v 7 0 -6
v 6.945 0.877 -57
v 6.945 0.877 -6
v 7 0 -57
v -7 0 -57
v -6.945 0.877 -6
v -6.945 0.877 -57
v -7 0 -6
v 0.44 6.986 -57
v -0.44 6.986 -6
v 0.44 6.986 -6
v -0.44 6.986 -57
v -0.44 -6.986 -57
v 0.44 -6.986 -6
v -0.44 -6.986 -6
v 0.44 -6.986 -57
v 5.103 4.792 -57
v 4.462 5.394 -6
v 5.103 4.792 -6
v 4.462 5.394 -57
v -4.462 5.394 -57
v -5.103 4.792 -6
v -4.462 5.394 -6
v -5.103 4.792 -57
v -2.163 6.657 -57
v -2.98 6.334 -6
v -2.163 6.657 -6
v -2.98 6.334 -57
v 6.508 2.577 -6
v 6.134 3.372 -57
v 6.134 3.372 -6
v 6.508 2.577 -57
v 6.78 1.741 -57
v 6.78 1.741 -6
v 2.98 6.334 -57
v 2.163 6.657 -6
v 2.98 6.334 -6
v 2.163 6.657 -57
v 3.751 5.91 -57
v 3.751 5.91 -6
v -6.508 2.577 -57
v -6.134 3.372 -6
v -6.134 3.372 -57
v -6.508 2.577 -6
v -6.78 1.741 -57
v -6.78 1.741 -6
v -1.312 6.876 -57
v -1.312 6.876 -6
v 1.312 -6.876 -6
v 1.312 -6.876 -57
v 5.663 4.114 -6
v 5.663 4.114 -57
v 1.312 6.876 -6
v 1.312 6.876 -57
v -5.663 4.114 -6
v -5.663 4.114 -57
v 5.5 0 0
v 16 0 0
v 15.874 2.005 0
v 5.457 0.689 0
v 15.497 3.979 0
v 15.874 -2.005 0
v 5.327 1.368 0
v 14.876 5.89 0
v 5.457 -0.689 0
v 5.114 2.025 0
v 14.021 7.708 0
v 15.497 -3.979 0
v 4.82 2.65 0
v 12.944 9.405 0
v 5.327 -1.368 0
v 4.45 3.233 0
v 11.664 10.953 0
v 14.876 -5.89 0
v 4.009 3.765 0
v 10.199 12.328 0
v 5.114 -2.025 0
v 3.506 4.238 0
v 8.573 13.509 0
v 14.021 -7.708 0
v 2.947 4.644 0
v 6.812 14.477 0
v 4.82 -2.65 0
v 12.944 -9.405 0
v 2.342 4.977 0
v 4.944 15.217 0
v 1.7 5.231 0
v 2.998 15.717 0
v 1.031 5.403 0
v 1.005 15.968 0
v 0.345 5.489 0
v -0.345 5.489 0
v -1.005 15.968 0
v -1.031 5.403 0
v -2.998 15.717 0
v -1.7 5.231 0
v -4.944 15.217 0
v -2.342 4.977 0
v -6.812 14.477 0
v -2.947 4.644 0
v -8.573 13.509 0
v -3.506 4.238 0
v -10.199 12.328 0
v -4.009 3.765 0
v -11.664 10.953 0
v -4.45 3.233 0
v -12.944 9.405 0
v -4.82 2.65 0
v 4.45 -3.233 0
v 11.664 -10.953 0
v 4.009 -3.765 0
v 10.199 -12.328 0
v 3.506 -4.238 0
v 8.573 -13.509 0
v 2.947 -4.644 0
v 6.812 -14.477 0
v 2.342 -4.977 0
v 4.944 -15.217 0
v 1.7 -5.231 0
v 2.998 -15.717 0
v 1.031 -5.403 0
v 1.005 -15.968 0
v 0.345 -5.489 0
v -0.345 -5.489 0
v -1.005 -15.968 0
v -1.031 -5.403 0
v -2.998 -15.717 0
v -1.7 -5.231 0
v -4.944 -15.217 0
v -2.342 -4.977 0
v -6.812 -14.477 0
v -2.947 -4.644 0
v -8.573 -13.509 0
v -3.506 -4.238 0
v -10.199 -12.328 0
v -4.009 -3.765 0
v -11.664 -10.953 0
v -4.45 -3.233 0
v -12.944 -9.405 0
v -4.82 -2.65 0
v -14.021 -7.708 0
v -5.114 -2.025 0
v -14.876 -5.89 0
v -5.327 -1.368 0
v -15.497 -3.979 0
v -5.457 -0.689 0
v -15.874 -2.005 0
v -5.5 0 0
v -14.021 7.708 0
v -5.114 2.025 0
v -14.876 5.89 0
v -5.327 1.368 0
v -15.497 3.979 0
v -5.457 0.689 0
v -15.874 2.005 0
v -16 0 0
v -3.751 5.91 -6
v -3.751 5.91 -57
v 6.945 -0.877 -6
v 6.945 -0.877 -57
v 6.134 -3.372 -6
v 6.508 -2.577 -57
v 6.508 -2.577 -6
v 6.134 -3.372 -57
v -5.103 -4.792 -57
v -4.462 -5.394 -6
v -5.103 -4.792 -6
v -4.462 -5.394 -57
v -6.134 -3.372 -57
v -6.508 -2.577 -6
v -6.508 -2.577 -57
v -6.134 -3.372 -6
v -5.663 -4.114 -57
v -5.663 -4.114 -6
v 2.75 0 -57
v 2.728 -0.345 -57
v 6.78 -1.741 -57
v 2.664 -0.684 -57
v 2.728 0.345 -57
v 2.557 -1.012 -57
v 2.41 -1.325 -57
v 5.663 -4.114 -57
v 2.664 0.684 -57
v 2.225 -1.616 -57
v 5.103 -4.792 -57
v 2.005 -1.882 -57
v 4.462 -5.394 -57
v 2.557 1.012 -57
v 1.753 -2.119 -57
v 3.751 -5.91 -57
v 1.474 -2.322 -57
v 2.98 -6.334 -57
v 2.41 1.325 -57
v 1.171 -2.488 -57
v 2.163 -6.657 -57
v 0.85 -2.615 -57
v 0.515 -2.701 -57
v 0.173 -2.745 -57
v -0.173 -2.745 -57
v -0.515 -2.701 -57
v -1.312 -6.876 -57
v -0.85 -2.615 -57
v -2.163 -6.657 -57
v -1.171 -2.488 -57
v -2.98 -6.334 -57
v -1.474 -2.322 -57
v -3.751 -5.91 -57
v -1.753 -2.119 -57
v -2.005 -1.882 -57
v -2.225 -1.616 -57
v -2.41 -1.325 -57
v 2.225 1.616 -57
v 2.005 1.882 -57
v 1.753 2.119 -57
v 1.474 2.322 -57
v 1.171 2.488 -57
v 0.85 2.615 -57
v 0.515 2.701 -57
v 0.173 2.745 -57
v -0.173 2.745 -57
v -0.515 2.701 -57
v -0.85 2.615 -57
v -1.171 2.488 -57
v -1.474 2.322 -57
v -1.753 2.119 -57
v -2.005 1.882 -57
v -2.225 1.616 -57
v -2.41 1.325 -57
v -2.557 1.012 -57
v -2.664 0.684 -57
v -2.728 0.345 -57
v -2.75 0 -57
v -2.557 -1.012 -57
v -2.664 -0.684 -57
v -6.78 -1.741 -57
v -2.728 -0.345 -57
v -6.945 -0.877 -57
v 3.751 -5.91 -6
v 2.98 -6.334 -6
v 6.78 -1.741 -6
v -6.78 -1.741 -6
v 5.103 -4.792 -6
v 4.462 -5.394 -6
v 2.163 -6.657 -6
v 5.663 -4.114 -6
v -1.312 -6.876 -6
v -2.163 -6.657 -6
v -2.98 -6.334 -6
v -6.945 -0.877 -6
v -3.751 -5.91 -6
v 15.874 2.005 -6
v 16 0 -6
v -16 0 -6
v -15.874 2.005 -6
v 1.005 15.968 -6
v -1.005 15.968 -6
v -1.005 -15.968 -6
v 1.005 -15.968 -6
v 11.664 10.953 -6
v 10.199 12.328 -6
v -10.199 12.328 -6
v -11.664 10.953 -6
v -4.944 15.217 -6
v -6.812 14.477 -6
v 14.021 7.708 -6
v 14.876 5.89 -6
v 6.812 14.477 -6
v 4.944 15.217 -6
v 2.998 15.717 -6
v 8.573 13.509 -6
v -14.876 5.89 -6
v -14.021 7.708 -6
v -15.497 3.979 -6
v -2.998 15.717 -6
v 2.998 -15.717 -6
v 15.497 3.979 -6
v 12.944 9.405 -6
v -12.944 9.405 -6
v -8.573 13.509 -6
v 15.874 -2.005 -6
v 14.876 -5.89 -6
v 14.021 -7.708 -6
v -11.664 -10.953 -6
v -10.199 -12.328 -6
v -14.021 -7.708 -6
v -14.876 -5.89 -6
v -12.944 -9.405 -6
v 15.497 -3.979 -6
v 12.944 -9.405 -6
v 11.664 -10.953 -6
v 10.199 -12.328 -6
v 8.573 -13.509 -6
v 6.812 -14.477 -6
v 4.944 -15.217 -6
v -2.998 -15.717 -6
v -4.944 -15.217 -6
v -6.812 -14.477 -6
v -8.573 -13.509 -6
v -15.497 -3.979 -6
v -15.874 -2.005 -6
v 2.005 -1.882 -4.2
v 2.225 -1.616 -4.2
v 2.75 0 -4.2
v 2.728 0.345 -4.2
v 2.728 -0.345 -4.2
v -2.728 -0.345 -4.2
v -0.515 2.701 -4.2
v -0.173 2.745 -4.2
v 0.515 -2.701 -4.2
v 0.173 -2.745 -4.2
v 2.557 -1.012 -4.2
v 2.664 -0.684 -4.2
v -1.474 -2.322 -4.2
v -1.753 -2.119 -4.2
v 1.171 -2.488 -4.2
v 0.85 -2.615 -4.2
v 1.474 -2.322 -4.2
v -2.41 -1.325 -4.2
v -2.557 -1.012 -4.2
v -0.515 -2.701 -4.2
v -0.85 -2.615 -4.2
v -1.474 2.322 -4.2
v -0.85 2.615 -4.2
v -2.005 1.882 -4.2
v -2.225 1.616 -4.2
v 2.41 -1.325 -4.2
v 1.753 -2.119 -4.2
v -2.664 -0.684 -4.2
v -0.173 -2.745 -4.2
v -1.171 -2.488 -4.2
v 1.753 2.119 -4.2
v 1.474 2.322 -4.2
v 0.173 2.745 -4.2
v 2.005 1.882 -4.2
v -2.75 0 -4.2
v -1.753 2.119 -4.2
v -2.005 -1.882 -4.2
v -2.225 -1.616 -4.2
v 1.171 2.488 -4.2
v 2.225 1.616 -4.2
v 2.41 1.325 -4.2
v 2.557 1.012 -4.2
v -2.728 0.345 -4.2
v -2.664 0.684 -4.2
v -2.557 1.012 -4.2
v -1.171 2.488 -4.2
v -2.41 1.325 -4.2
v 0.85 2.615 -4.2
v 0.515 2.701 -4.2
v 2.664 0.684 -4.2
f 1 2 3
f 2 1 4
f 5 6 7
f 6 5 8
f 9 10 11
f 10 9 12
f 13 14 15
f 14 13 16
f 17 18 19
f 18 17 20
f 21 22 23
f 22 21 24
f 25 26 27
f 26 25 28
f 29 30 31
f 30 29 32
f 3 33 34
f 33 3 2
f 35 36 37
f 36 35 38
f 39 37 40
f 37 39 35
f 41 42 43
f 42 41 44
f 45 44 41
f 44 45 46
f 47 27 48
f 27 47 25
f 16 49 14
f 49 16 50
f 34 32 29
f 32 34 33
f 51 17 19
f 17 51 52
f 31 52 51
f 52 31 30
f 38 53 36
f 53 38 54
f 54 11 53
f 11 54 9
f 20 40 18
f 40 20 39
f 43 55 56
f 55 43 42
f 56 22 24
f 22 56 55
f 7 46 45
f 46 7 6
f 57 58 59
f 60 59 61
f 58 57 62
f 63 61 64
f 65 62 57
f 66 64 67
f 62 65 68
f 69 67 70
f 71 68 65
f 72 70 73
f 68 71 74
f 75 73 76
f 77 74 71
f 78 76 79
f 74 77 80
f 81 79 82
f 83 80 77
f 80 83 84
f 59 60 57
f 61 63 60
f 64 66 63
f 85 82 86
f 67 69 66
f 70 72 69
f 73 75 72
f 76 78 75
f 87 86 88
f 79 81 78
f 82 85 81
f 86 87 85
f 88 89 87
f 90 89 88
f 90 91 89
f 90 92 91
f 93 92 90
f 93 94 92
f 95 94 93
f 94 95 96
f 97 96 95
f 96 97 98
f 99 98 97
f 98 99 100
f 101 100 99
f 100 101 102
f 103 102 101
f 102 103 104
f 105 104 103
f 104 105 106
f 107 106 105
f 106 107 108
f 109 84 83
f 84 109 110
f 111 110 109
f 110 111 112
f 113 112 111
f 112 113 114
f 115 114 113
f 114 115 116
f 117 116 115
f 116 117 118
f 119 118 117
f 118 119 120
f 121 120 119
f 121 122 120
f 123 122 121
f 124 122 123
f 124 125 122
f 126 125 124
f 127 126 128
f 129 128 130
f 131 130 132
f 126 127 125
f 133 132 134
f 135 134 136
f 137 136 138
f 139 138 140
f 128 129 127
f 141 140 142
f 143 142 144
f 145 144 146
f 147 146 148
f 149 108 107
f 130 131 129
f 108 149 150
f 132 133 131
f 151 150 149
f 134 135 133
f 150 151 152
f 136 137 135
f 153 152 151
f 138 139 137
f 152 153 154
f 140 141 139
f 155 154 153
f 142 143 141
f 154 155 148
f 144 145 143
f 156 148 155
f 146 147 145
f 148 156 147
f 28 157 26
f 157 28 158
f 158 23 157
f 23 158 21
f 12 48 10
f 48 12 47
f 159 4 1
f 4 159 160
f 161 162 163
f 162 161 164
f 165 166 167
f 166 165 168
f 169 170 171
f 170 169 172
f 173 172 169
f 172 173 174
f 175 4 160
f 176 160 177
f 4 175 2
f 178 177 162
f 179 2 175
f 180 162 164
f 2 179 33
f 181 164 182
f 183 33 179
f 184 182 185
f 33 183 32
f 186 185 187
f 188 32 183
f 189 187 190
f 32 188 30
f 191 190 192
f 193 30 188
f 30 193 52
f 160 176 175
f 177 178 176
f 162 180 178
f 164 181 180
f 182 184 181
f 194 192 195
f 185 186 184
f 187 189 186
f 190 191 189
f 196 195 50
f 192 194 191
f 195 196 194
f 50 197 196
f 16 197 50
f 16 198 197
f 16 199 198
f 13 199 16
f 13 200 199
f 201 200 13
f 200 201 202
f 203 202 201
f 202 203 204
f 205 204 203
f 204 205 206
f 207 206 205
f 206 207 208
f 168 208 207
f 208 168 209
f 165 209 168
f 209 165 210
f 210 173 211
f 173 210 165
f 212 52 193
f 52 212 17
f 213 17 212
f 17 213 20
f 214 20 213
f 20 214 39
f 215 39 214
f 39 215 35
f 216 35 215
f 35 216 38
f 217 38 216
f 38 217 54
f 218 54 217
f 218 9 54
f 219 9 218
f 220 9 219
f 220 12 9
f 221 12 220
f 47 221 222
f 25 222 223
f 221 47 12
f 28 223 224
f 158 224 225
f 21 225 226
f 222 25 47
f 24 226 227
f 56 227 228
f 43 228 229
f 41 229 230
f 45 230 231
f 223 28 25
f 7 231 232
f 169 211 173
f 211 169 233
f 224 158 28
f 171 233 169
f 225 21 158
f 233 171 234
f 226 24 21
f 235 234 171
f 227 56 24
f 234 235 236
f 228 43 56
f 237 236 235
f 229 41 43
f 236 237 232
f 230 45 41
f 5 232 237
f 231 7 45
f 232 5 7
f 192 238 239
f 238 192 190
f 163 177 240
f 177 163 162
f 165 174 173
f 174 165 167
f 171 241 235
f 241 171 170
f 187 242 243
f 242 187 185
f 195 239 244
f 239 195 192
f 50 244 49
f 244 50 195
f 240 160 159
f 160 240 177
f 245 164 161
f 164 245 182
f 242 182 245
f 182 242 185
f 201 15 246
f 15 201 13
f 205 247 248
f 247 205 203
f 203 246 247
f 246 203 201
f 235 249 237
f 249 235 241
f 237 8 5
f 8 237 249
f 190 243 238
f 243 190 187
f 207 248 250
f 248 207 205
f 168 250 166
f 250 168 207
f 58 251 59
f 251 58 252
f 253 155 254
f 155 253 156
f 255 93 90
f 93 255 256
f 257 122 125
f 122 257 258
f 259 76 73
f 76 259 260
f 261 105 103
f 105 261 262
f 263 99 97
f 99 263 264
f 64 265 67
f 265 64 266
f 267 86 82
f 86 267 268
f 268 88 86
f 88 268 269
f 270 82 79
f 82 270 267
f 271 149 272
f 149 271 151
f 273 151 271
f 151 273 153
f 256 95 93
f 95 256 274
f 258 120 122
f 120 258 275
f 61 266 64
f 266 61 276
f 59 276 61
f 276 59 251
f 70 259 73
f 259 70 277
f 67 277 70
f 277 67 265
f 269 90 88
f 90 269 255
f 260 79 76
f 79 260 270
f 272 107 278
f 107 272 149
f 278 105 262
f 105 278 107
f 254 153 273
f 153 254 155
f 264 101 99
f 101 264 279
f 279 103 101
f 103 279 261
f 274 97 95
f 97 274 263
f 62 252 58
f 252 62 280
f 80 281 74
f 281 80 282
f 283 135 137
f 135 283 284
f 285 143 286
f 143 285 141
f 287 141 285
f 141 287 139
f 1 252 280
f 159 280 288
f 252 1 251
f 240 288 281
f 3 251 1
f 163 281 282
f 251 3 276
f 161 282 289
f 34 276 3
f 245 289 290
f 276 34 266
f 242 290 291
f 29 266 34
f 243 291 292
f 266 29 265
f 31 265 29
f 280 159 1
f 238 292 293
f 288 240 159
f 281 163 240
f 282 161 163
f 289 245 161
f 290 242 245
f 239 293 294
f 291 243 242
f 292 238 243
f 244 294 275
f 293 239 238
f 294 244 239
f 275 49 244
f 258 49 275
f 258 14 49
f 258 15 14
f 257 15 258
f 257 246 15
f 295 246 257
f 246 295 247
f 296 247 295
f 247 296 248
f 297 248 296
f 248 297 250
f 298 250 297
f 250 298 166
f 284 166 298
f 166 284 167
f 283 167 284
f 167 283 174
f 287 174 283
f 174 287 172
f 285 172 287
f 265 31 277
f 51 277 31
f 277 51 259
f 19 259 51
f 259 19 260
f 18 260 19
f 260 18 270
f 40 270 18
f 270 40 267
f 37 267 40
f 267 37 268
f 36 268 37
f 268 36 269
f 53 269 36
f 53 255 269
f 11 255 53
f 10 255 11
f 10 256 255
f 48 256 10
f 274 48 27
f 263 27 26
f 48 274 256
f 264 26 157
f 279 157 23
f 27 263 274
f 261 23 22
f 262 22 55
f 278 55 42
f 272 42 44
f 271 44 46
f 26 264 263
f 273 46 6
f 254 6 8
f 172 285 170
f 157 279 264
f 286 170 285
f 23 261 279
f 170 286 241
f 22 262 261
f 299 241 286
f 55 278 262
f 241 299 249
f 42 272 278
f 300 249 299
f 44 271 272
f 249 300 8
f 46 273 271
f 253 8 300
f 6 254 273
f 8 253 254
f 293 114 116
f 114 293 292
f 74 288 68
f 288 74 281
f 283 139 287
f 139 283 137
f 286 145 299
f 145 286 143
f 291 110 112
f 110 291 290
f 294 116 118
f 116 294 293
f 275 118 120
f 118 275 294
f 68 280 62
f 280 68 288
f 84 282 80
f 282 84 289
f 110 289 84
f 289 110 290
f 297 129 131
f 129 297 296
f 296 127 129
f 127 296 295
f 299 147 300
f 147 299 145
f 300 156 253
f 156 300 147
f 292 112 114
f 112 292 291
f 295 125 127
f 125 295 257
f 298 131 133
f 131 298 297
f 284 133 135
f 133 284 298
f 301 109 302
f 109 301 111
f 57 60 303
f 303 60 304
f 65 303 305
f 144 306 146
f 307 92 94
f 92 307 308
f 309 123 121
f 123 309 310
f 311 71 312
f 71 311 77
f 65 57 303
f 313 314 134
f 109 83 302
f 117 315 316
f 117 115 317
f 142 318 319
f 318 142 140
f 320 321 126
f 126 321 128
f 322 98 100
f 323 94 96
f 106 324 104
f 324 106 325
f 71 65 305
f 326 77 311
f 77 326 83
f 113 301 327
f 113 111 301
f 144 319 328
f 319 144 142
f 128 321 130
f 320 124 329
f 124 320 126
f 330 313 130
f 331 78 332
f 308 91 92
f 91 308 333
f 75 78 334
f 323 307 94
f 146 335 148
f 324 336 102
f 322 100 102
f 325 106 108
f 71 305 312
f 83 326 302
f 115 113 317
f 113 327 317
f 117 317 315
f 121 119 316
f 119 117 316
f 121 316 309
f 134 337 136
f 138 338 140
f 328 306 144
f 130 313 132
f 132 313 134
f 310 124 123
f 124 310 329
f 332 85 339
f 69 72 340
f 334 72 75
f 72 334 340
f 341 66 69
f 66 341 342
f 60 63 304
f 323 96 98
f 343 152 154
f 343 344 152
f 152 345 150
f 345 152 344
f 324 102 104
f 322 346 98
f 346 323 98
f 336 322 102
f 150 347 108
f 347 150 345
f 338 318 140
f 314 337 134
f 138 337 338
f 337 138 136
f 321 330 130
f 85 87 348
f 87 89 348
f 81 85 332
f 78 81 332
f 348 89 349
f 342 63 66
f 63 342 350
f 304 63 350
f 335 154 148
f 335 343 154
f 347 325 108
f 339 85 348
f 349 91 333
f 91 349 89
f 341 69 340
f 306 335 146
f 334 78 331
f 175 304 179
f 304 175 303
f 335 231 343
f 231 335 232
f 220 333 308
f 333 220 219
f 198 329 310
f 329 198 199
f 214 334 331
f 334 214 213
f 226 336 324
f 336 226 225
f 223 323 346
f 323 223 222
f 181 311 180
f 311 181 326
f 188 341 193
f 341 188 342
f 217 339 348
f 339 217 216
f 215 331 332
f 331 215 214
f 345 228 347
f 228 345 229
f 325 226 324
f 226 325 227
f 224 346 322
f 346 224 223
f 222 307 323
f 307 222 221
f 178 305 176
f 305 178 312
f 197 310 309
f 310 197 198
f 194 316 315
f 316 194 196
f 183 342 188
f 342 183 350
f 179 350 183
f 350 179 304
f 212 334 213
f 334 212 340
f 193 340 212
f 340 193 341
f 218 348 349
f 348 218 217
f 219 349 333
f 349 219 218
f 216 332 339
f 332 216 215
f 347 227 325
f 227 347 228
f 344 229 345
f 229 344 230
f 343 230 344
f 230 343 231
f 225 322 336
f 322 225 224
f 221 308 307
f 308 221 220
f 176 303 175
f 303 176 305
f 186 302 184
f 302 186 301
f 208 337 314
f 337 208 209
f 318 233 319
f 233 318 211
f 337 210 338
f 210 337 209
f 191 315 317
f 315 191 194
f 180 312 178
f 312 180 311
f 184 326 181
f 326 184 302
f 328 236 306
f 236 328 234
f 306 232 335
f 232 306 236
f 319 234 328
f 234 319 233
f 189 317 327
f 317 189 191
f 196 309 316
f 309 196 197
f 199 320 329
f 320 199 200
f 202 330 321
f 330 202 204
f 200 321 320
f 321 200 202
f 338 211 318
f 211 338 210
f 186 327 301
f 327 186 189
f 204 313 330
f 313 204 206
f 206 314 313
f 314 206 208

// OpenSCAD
$fn = 50;


difference() {
	union() {
		translate(v = [0, 0, -57.0000000000]) {
			cylinder(h = 57, r = 7.0000000000);
		}
		translate(v = [0, 0, -6.0000000000]) {
			cylinder(h = 6, r = 16.0000000000);
		}
	}
	union() {
		translate(v = [0, 0, 0]) {
			rotate(a = [0, 0, 0]) {
				difference() {
					union() {
						#translate(v = [0, 0, -57.0000000000]) {
							cylinder(h = 57, r = 2.2500000000);
						}
						#translate(v = [0, 0, -4.2000000000]) {
							cylinder(h = 4.2000000000, r1 = 2.7500000000, r2 = 5.5000000000);
						}
						#translate(v = [0, 0, -57.0000000000]) {
							cylinder(h = 57, r = 2.7500000000);
						}
						#translate(v = [0, 0, -57.0000000000]) {
							cylinder(h = 57, r = 2.2500000000);
						}
					}
					union();
				}
			}
		}
	}
}
